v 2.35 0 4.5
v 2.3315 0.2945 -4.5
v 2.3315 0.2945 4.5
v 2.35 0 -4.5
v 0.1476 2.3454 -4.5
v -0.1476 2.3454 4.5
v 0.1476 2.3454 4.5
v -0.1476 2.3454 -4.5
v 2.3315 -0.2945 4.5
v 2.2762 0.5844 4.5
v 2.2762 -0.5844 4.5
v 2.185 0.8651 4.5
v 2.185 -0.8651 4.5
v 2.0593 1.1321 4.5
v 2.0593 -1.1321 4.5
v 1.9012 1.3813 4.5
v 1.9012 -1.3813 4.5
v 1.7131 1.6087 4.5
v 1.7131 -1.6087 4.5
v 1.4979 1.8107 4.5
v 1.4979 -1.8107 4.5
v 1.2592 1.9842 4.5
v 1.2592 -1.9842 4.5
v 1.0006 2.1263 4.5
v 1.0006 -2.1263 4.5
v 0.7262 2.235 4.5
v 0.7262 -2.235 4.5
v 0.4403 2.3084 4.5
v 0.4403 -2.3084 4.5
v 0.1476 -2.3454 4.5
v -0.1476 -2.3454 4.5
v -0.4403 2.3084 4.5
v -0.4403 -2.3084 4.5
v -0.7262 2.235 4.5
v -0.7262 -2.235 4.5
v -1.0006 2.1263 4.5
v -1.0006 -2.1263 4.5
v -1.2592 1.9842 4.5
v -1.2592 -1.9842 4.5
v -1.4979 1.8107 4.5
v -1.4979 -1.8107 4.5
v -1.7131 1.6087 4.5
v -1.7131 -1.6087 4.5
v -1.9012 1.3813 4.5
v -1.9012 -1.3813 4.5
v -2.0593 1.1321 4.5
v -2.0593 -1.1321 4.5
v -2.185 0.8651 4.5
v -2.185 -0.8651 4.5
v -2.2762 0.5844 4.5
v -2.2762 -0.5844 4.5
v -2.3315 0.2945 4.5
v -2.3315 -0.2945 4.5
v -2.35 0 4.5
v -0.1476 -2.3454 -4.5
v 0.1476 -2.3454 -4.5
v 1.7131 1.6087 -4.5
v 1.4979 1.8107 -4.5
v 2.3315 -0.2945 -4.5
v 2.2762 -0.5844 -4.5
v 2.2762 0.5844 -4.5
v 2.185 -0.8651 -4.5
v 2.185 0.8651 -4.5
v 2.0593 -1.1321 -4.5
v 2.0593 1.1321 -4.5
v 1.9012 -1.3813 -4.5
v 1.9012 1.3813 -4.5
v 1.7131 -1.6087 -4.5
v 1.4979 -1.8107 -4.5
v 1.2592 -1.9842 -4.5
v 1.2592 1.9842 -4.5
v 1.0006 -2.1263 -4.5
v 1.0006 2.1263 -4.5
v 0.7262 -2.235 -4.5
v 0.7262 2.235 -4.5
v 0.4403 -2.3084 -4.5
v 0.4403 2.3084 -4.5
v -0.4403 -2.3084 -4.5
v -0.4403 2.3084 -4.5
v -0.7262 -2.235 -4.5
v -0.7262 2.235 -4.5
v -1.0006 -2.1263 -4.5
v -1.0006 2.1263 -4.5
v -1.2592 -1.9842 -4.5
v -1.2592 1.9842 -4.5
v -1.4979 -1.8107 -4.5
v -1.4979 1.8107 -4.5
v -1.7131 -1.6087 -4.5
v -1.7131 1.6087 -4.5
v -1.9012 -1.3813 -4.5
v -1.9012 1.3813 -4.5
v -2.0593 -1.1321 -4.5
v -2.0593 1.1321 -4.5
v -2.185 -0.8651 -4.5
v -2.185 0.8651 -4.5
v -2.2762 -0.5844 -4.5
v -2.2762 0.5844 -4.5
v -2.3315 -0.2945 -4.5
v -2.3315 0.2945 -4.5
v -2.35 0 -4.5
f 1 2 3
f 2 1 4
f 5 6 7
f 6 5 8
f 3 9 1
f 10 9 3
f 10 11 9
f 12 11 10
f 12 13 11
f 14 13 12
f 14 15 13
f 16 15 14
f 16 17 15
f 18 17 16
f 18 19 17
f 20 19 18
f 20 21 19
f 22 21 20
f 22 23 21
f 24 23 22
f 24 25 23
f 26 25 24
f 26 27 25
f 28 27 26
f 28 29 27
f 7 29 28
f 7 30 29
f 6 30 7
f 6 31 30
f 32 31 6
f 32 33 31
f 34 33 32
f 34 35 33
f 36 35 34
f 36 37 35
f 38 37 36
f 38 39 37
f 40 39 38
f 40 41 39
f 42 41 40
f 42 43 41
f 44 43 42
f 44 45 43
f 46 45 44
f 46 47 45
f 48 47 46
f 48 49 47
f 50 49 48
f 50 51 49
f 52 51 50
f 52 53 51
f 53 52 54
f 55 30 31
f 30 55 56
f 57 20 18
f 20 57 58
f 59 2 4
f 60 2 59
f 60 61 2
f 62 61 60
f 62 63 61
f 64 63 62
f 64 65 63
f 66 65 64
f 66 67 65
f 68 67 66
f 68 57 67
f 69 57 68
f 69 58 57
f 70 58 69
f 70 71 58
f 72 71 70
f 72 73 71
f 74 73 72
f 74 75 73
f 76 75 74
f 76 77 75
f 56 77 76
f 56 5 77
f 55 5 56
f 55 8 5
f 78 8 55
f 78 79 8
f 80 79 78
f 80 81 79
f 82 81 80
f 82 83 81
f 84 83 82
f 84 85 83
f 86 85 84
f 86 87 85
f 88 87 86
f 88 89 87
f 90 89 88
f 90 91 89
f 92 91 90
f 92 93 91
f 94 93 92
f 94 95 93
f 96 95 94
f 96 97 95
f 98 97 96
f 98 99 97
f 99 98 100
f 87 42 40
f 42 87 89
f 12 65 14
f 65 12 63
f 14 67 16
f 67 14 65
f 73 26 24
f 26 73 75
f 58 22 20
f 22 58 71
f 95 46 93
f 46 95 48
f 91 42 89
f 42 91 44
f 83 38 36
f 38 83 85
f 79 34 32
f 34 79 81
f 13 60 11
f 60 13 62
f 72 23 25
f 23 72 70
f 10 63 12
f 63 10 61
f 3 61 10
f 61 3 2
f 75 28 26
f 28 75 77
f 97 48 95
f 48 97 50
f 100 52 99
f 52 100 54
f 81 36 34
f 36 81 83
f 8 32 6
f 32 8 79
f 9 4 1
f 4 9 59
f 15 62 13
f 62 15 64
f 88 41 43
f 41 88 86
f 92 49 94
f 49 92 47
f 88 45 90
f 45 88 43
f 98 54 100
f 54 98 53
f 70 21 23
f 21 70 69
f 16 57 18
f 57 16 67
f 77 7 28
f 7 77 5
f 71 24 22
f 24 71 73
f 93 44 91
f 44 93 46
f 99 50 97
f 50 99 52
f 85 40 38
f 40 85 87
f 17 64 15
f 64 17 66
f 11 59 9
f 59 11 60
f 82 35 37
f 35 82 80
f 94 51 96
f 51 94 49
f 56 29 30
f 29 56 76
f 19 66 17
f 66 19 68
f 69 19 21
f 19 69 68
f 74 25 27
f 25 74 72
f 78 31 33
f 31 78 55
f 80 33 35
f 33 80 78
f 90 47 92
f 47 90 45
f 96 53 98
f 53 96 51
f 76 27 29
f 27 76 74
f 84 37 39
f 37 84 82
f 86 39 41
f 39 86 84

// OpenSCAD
$fn = 50;


difference() {
	union() {
		translate(v = [0, 0, -4.5000000000]) {
			cylinder(h = 9, r = 2.3500000000);
		}
	}
	union() {
		translate(v = [0, 0, -100.0000000000]) {
			cylinder(h = 200, r = 0);
		}
	}
}
